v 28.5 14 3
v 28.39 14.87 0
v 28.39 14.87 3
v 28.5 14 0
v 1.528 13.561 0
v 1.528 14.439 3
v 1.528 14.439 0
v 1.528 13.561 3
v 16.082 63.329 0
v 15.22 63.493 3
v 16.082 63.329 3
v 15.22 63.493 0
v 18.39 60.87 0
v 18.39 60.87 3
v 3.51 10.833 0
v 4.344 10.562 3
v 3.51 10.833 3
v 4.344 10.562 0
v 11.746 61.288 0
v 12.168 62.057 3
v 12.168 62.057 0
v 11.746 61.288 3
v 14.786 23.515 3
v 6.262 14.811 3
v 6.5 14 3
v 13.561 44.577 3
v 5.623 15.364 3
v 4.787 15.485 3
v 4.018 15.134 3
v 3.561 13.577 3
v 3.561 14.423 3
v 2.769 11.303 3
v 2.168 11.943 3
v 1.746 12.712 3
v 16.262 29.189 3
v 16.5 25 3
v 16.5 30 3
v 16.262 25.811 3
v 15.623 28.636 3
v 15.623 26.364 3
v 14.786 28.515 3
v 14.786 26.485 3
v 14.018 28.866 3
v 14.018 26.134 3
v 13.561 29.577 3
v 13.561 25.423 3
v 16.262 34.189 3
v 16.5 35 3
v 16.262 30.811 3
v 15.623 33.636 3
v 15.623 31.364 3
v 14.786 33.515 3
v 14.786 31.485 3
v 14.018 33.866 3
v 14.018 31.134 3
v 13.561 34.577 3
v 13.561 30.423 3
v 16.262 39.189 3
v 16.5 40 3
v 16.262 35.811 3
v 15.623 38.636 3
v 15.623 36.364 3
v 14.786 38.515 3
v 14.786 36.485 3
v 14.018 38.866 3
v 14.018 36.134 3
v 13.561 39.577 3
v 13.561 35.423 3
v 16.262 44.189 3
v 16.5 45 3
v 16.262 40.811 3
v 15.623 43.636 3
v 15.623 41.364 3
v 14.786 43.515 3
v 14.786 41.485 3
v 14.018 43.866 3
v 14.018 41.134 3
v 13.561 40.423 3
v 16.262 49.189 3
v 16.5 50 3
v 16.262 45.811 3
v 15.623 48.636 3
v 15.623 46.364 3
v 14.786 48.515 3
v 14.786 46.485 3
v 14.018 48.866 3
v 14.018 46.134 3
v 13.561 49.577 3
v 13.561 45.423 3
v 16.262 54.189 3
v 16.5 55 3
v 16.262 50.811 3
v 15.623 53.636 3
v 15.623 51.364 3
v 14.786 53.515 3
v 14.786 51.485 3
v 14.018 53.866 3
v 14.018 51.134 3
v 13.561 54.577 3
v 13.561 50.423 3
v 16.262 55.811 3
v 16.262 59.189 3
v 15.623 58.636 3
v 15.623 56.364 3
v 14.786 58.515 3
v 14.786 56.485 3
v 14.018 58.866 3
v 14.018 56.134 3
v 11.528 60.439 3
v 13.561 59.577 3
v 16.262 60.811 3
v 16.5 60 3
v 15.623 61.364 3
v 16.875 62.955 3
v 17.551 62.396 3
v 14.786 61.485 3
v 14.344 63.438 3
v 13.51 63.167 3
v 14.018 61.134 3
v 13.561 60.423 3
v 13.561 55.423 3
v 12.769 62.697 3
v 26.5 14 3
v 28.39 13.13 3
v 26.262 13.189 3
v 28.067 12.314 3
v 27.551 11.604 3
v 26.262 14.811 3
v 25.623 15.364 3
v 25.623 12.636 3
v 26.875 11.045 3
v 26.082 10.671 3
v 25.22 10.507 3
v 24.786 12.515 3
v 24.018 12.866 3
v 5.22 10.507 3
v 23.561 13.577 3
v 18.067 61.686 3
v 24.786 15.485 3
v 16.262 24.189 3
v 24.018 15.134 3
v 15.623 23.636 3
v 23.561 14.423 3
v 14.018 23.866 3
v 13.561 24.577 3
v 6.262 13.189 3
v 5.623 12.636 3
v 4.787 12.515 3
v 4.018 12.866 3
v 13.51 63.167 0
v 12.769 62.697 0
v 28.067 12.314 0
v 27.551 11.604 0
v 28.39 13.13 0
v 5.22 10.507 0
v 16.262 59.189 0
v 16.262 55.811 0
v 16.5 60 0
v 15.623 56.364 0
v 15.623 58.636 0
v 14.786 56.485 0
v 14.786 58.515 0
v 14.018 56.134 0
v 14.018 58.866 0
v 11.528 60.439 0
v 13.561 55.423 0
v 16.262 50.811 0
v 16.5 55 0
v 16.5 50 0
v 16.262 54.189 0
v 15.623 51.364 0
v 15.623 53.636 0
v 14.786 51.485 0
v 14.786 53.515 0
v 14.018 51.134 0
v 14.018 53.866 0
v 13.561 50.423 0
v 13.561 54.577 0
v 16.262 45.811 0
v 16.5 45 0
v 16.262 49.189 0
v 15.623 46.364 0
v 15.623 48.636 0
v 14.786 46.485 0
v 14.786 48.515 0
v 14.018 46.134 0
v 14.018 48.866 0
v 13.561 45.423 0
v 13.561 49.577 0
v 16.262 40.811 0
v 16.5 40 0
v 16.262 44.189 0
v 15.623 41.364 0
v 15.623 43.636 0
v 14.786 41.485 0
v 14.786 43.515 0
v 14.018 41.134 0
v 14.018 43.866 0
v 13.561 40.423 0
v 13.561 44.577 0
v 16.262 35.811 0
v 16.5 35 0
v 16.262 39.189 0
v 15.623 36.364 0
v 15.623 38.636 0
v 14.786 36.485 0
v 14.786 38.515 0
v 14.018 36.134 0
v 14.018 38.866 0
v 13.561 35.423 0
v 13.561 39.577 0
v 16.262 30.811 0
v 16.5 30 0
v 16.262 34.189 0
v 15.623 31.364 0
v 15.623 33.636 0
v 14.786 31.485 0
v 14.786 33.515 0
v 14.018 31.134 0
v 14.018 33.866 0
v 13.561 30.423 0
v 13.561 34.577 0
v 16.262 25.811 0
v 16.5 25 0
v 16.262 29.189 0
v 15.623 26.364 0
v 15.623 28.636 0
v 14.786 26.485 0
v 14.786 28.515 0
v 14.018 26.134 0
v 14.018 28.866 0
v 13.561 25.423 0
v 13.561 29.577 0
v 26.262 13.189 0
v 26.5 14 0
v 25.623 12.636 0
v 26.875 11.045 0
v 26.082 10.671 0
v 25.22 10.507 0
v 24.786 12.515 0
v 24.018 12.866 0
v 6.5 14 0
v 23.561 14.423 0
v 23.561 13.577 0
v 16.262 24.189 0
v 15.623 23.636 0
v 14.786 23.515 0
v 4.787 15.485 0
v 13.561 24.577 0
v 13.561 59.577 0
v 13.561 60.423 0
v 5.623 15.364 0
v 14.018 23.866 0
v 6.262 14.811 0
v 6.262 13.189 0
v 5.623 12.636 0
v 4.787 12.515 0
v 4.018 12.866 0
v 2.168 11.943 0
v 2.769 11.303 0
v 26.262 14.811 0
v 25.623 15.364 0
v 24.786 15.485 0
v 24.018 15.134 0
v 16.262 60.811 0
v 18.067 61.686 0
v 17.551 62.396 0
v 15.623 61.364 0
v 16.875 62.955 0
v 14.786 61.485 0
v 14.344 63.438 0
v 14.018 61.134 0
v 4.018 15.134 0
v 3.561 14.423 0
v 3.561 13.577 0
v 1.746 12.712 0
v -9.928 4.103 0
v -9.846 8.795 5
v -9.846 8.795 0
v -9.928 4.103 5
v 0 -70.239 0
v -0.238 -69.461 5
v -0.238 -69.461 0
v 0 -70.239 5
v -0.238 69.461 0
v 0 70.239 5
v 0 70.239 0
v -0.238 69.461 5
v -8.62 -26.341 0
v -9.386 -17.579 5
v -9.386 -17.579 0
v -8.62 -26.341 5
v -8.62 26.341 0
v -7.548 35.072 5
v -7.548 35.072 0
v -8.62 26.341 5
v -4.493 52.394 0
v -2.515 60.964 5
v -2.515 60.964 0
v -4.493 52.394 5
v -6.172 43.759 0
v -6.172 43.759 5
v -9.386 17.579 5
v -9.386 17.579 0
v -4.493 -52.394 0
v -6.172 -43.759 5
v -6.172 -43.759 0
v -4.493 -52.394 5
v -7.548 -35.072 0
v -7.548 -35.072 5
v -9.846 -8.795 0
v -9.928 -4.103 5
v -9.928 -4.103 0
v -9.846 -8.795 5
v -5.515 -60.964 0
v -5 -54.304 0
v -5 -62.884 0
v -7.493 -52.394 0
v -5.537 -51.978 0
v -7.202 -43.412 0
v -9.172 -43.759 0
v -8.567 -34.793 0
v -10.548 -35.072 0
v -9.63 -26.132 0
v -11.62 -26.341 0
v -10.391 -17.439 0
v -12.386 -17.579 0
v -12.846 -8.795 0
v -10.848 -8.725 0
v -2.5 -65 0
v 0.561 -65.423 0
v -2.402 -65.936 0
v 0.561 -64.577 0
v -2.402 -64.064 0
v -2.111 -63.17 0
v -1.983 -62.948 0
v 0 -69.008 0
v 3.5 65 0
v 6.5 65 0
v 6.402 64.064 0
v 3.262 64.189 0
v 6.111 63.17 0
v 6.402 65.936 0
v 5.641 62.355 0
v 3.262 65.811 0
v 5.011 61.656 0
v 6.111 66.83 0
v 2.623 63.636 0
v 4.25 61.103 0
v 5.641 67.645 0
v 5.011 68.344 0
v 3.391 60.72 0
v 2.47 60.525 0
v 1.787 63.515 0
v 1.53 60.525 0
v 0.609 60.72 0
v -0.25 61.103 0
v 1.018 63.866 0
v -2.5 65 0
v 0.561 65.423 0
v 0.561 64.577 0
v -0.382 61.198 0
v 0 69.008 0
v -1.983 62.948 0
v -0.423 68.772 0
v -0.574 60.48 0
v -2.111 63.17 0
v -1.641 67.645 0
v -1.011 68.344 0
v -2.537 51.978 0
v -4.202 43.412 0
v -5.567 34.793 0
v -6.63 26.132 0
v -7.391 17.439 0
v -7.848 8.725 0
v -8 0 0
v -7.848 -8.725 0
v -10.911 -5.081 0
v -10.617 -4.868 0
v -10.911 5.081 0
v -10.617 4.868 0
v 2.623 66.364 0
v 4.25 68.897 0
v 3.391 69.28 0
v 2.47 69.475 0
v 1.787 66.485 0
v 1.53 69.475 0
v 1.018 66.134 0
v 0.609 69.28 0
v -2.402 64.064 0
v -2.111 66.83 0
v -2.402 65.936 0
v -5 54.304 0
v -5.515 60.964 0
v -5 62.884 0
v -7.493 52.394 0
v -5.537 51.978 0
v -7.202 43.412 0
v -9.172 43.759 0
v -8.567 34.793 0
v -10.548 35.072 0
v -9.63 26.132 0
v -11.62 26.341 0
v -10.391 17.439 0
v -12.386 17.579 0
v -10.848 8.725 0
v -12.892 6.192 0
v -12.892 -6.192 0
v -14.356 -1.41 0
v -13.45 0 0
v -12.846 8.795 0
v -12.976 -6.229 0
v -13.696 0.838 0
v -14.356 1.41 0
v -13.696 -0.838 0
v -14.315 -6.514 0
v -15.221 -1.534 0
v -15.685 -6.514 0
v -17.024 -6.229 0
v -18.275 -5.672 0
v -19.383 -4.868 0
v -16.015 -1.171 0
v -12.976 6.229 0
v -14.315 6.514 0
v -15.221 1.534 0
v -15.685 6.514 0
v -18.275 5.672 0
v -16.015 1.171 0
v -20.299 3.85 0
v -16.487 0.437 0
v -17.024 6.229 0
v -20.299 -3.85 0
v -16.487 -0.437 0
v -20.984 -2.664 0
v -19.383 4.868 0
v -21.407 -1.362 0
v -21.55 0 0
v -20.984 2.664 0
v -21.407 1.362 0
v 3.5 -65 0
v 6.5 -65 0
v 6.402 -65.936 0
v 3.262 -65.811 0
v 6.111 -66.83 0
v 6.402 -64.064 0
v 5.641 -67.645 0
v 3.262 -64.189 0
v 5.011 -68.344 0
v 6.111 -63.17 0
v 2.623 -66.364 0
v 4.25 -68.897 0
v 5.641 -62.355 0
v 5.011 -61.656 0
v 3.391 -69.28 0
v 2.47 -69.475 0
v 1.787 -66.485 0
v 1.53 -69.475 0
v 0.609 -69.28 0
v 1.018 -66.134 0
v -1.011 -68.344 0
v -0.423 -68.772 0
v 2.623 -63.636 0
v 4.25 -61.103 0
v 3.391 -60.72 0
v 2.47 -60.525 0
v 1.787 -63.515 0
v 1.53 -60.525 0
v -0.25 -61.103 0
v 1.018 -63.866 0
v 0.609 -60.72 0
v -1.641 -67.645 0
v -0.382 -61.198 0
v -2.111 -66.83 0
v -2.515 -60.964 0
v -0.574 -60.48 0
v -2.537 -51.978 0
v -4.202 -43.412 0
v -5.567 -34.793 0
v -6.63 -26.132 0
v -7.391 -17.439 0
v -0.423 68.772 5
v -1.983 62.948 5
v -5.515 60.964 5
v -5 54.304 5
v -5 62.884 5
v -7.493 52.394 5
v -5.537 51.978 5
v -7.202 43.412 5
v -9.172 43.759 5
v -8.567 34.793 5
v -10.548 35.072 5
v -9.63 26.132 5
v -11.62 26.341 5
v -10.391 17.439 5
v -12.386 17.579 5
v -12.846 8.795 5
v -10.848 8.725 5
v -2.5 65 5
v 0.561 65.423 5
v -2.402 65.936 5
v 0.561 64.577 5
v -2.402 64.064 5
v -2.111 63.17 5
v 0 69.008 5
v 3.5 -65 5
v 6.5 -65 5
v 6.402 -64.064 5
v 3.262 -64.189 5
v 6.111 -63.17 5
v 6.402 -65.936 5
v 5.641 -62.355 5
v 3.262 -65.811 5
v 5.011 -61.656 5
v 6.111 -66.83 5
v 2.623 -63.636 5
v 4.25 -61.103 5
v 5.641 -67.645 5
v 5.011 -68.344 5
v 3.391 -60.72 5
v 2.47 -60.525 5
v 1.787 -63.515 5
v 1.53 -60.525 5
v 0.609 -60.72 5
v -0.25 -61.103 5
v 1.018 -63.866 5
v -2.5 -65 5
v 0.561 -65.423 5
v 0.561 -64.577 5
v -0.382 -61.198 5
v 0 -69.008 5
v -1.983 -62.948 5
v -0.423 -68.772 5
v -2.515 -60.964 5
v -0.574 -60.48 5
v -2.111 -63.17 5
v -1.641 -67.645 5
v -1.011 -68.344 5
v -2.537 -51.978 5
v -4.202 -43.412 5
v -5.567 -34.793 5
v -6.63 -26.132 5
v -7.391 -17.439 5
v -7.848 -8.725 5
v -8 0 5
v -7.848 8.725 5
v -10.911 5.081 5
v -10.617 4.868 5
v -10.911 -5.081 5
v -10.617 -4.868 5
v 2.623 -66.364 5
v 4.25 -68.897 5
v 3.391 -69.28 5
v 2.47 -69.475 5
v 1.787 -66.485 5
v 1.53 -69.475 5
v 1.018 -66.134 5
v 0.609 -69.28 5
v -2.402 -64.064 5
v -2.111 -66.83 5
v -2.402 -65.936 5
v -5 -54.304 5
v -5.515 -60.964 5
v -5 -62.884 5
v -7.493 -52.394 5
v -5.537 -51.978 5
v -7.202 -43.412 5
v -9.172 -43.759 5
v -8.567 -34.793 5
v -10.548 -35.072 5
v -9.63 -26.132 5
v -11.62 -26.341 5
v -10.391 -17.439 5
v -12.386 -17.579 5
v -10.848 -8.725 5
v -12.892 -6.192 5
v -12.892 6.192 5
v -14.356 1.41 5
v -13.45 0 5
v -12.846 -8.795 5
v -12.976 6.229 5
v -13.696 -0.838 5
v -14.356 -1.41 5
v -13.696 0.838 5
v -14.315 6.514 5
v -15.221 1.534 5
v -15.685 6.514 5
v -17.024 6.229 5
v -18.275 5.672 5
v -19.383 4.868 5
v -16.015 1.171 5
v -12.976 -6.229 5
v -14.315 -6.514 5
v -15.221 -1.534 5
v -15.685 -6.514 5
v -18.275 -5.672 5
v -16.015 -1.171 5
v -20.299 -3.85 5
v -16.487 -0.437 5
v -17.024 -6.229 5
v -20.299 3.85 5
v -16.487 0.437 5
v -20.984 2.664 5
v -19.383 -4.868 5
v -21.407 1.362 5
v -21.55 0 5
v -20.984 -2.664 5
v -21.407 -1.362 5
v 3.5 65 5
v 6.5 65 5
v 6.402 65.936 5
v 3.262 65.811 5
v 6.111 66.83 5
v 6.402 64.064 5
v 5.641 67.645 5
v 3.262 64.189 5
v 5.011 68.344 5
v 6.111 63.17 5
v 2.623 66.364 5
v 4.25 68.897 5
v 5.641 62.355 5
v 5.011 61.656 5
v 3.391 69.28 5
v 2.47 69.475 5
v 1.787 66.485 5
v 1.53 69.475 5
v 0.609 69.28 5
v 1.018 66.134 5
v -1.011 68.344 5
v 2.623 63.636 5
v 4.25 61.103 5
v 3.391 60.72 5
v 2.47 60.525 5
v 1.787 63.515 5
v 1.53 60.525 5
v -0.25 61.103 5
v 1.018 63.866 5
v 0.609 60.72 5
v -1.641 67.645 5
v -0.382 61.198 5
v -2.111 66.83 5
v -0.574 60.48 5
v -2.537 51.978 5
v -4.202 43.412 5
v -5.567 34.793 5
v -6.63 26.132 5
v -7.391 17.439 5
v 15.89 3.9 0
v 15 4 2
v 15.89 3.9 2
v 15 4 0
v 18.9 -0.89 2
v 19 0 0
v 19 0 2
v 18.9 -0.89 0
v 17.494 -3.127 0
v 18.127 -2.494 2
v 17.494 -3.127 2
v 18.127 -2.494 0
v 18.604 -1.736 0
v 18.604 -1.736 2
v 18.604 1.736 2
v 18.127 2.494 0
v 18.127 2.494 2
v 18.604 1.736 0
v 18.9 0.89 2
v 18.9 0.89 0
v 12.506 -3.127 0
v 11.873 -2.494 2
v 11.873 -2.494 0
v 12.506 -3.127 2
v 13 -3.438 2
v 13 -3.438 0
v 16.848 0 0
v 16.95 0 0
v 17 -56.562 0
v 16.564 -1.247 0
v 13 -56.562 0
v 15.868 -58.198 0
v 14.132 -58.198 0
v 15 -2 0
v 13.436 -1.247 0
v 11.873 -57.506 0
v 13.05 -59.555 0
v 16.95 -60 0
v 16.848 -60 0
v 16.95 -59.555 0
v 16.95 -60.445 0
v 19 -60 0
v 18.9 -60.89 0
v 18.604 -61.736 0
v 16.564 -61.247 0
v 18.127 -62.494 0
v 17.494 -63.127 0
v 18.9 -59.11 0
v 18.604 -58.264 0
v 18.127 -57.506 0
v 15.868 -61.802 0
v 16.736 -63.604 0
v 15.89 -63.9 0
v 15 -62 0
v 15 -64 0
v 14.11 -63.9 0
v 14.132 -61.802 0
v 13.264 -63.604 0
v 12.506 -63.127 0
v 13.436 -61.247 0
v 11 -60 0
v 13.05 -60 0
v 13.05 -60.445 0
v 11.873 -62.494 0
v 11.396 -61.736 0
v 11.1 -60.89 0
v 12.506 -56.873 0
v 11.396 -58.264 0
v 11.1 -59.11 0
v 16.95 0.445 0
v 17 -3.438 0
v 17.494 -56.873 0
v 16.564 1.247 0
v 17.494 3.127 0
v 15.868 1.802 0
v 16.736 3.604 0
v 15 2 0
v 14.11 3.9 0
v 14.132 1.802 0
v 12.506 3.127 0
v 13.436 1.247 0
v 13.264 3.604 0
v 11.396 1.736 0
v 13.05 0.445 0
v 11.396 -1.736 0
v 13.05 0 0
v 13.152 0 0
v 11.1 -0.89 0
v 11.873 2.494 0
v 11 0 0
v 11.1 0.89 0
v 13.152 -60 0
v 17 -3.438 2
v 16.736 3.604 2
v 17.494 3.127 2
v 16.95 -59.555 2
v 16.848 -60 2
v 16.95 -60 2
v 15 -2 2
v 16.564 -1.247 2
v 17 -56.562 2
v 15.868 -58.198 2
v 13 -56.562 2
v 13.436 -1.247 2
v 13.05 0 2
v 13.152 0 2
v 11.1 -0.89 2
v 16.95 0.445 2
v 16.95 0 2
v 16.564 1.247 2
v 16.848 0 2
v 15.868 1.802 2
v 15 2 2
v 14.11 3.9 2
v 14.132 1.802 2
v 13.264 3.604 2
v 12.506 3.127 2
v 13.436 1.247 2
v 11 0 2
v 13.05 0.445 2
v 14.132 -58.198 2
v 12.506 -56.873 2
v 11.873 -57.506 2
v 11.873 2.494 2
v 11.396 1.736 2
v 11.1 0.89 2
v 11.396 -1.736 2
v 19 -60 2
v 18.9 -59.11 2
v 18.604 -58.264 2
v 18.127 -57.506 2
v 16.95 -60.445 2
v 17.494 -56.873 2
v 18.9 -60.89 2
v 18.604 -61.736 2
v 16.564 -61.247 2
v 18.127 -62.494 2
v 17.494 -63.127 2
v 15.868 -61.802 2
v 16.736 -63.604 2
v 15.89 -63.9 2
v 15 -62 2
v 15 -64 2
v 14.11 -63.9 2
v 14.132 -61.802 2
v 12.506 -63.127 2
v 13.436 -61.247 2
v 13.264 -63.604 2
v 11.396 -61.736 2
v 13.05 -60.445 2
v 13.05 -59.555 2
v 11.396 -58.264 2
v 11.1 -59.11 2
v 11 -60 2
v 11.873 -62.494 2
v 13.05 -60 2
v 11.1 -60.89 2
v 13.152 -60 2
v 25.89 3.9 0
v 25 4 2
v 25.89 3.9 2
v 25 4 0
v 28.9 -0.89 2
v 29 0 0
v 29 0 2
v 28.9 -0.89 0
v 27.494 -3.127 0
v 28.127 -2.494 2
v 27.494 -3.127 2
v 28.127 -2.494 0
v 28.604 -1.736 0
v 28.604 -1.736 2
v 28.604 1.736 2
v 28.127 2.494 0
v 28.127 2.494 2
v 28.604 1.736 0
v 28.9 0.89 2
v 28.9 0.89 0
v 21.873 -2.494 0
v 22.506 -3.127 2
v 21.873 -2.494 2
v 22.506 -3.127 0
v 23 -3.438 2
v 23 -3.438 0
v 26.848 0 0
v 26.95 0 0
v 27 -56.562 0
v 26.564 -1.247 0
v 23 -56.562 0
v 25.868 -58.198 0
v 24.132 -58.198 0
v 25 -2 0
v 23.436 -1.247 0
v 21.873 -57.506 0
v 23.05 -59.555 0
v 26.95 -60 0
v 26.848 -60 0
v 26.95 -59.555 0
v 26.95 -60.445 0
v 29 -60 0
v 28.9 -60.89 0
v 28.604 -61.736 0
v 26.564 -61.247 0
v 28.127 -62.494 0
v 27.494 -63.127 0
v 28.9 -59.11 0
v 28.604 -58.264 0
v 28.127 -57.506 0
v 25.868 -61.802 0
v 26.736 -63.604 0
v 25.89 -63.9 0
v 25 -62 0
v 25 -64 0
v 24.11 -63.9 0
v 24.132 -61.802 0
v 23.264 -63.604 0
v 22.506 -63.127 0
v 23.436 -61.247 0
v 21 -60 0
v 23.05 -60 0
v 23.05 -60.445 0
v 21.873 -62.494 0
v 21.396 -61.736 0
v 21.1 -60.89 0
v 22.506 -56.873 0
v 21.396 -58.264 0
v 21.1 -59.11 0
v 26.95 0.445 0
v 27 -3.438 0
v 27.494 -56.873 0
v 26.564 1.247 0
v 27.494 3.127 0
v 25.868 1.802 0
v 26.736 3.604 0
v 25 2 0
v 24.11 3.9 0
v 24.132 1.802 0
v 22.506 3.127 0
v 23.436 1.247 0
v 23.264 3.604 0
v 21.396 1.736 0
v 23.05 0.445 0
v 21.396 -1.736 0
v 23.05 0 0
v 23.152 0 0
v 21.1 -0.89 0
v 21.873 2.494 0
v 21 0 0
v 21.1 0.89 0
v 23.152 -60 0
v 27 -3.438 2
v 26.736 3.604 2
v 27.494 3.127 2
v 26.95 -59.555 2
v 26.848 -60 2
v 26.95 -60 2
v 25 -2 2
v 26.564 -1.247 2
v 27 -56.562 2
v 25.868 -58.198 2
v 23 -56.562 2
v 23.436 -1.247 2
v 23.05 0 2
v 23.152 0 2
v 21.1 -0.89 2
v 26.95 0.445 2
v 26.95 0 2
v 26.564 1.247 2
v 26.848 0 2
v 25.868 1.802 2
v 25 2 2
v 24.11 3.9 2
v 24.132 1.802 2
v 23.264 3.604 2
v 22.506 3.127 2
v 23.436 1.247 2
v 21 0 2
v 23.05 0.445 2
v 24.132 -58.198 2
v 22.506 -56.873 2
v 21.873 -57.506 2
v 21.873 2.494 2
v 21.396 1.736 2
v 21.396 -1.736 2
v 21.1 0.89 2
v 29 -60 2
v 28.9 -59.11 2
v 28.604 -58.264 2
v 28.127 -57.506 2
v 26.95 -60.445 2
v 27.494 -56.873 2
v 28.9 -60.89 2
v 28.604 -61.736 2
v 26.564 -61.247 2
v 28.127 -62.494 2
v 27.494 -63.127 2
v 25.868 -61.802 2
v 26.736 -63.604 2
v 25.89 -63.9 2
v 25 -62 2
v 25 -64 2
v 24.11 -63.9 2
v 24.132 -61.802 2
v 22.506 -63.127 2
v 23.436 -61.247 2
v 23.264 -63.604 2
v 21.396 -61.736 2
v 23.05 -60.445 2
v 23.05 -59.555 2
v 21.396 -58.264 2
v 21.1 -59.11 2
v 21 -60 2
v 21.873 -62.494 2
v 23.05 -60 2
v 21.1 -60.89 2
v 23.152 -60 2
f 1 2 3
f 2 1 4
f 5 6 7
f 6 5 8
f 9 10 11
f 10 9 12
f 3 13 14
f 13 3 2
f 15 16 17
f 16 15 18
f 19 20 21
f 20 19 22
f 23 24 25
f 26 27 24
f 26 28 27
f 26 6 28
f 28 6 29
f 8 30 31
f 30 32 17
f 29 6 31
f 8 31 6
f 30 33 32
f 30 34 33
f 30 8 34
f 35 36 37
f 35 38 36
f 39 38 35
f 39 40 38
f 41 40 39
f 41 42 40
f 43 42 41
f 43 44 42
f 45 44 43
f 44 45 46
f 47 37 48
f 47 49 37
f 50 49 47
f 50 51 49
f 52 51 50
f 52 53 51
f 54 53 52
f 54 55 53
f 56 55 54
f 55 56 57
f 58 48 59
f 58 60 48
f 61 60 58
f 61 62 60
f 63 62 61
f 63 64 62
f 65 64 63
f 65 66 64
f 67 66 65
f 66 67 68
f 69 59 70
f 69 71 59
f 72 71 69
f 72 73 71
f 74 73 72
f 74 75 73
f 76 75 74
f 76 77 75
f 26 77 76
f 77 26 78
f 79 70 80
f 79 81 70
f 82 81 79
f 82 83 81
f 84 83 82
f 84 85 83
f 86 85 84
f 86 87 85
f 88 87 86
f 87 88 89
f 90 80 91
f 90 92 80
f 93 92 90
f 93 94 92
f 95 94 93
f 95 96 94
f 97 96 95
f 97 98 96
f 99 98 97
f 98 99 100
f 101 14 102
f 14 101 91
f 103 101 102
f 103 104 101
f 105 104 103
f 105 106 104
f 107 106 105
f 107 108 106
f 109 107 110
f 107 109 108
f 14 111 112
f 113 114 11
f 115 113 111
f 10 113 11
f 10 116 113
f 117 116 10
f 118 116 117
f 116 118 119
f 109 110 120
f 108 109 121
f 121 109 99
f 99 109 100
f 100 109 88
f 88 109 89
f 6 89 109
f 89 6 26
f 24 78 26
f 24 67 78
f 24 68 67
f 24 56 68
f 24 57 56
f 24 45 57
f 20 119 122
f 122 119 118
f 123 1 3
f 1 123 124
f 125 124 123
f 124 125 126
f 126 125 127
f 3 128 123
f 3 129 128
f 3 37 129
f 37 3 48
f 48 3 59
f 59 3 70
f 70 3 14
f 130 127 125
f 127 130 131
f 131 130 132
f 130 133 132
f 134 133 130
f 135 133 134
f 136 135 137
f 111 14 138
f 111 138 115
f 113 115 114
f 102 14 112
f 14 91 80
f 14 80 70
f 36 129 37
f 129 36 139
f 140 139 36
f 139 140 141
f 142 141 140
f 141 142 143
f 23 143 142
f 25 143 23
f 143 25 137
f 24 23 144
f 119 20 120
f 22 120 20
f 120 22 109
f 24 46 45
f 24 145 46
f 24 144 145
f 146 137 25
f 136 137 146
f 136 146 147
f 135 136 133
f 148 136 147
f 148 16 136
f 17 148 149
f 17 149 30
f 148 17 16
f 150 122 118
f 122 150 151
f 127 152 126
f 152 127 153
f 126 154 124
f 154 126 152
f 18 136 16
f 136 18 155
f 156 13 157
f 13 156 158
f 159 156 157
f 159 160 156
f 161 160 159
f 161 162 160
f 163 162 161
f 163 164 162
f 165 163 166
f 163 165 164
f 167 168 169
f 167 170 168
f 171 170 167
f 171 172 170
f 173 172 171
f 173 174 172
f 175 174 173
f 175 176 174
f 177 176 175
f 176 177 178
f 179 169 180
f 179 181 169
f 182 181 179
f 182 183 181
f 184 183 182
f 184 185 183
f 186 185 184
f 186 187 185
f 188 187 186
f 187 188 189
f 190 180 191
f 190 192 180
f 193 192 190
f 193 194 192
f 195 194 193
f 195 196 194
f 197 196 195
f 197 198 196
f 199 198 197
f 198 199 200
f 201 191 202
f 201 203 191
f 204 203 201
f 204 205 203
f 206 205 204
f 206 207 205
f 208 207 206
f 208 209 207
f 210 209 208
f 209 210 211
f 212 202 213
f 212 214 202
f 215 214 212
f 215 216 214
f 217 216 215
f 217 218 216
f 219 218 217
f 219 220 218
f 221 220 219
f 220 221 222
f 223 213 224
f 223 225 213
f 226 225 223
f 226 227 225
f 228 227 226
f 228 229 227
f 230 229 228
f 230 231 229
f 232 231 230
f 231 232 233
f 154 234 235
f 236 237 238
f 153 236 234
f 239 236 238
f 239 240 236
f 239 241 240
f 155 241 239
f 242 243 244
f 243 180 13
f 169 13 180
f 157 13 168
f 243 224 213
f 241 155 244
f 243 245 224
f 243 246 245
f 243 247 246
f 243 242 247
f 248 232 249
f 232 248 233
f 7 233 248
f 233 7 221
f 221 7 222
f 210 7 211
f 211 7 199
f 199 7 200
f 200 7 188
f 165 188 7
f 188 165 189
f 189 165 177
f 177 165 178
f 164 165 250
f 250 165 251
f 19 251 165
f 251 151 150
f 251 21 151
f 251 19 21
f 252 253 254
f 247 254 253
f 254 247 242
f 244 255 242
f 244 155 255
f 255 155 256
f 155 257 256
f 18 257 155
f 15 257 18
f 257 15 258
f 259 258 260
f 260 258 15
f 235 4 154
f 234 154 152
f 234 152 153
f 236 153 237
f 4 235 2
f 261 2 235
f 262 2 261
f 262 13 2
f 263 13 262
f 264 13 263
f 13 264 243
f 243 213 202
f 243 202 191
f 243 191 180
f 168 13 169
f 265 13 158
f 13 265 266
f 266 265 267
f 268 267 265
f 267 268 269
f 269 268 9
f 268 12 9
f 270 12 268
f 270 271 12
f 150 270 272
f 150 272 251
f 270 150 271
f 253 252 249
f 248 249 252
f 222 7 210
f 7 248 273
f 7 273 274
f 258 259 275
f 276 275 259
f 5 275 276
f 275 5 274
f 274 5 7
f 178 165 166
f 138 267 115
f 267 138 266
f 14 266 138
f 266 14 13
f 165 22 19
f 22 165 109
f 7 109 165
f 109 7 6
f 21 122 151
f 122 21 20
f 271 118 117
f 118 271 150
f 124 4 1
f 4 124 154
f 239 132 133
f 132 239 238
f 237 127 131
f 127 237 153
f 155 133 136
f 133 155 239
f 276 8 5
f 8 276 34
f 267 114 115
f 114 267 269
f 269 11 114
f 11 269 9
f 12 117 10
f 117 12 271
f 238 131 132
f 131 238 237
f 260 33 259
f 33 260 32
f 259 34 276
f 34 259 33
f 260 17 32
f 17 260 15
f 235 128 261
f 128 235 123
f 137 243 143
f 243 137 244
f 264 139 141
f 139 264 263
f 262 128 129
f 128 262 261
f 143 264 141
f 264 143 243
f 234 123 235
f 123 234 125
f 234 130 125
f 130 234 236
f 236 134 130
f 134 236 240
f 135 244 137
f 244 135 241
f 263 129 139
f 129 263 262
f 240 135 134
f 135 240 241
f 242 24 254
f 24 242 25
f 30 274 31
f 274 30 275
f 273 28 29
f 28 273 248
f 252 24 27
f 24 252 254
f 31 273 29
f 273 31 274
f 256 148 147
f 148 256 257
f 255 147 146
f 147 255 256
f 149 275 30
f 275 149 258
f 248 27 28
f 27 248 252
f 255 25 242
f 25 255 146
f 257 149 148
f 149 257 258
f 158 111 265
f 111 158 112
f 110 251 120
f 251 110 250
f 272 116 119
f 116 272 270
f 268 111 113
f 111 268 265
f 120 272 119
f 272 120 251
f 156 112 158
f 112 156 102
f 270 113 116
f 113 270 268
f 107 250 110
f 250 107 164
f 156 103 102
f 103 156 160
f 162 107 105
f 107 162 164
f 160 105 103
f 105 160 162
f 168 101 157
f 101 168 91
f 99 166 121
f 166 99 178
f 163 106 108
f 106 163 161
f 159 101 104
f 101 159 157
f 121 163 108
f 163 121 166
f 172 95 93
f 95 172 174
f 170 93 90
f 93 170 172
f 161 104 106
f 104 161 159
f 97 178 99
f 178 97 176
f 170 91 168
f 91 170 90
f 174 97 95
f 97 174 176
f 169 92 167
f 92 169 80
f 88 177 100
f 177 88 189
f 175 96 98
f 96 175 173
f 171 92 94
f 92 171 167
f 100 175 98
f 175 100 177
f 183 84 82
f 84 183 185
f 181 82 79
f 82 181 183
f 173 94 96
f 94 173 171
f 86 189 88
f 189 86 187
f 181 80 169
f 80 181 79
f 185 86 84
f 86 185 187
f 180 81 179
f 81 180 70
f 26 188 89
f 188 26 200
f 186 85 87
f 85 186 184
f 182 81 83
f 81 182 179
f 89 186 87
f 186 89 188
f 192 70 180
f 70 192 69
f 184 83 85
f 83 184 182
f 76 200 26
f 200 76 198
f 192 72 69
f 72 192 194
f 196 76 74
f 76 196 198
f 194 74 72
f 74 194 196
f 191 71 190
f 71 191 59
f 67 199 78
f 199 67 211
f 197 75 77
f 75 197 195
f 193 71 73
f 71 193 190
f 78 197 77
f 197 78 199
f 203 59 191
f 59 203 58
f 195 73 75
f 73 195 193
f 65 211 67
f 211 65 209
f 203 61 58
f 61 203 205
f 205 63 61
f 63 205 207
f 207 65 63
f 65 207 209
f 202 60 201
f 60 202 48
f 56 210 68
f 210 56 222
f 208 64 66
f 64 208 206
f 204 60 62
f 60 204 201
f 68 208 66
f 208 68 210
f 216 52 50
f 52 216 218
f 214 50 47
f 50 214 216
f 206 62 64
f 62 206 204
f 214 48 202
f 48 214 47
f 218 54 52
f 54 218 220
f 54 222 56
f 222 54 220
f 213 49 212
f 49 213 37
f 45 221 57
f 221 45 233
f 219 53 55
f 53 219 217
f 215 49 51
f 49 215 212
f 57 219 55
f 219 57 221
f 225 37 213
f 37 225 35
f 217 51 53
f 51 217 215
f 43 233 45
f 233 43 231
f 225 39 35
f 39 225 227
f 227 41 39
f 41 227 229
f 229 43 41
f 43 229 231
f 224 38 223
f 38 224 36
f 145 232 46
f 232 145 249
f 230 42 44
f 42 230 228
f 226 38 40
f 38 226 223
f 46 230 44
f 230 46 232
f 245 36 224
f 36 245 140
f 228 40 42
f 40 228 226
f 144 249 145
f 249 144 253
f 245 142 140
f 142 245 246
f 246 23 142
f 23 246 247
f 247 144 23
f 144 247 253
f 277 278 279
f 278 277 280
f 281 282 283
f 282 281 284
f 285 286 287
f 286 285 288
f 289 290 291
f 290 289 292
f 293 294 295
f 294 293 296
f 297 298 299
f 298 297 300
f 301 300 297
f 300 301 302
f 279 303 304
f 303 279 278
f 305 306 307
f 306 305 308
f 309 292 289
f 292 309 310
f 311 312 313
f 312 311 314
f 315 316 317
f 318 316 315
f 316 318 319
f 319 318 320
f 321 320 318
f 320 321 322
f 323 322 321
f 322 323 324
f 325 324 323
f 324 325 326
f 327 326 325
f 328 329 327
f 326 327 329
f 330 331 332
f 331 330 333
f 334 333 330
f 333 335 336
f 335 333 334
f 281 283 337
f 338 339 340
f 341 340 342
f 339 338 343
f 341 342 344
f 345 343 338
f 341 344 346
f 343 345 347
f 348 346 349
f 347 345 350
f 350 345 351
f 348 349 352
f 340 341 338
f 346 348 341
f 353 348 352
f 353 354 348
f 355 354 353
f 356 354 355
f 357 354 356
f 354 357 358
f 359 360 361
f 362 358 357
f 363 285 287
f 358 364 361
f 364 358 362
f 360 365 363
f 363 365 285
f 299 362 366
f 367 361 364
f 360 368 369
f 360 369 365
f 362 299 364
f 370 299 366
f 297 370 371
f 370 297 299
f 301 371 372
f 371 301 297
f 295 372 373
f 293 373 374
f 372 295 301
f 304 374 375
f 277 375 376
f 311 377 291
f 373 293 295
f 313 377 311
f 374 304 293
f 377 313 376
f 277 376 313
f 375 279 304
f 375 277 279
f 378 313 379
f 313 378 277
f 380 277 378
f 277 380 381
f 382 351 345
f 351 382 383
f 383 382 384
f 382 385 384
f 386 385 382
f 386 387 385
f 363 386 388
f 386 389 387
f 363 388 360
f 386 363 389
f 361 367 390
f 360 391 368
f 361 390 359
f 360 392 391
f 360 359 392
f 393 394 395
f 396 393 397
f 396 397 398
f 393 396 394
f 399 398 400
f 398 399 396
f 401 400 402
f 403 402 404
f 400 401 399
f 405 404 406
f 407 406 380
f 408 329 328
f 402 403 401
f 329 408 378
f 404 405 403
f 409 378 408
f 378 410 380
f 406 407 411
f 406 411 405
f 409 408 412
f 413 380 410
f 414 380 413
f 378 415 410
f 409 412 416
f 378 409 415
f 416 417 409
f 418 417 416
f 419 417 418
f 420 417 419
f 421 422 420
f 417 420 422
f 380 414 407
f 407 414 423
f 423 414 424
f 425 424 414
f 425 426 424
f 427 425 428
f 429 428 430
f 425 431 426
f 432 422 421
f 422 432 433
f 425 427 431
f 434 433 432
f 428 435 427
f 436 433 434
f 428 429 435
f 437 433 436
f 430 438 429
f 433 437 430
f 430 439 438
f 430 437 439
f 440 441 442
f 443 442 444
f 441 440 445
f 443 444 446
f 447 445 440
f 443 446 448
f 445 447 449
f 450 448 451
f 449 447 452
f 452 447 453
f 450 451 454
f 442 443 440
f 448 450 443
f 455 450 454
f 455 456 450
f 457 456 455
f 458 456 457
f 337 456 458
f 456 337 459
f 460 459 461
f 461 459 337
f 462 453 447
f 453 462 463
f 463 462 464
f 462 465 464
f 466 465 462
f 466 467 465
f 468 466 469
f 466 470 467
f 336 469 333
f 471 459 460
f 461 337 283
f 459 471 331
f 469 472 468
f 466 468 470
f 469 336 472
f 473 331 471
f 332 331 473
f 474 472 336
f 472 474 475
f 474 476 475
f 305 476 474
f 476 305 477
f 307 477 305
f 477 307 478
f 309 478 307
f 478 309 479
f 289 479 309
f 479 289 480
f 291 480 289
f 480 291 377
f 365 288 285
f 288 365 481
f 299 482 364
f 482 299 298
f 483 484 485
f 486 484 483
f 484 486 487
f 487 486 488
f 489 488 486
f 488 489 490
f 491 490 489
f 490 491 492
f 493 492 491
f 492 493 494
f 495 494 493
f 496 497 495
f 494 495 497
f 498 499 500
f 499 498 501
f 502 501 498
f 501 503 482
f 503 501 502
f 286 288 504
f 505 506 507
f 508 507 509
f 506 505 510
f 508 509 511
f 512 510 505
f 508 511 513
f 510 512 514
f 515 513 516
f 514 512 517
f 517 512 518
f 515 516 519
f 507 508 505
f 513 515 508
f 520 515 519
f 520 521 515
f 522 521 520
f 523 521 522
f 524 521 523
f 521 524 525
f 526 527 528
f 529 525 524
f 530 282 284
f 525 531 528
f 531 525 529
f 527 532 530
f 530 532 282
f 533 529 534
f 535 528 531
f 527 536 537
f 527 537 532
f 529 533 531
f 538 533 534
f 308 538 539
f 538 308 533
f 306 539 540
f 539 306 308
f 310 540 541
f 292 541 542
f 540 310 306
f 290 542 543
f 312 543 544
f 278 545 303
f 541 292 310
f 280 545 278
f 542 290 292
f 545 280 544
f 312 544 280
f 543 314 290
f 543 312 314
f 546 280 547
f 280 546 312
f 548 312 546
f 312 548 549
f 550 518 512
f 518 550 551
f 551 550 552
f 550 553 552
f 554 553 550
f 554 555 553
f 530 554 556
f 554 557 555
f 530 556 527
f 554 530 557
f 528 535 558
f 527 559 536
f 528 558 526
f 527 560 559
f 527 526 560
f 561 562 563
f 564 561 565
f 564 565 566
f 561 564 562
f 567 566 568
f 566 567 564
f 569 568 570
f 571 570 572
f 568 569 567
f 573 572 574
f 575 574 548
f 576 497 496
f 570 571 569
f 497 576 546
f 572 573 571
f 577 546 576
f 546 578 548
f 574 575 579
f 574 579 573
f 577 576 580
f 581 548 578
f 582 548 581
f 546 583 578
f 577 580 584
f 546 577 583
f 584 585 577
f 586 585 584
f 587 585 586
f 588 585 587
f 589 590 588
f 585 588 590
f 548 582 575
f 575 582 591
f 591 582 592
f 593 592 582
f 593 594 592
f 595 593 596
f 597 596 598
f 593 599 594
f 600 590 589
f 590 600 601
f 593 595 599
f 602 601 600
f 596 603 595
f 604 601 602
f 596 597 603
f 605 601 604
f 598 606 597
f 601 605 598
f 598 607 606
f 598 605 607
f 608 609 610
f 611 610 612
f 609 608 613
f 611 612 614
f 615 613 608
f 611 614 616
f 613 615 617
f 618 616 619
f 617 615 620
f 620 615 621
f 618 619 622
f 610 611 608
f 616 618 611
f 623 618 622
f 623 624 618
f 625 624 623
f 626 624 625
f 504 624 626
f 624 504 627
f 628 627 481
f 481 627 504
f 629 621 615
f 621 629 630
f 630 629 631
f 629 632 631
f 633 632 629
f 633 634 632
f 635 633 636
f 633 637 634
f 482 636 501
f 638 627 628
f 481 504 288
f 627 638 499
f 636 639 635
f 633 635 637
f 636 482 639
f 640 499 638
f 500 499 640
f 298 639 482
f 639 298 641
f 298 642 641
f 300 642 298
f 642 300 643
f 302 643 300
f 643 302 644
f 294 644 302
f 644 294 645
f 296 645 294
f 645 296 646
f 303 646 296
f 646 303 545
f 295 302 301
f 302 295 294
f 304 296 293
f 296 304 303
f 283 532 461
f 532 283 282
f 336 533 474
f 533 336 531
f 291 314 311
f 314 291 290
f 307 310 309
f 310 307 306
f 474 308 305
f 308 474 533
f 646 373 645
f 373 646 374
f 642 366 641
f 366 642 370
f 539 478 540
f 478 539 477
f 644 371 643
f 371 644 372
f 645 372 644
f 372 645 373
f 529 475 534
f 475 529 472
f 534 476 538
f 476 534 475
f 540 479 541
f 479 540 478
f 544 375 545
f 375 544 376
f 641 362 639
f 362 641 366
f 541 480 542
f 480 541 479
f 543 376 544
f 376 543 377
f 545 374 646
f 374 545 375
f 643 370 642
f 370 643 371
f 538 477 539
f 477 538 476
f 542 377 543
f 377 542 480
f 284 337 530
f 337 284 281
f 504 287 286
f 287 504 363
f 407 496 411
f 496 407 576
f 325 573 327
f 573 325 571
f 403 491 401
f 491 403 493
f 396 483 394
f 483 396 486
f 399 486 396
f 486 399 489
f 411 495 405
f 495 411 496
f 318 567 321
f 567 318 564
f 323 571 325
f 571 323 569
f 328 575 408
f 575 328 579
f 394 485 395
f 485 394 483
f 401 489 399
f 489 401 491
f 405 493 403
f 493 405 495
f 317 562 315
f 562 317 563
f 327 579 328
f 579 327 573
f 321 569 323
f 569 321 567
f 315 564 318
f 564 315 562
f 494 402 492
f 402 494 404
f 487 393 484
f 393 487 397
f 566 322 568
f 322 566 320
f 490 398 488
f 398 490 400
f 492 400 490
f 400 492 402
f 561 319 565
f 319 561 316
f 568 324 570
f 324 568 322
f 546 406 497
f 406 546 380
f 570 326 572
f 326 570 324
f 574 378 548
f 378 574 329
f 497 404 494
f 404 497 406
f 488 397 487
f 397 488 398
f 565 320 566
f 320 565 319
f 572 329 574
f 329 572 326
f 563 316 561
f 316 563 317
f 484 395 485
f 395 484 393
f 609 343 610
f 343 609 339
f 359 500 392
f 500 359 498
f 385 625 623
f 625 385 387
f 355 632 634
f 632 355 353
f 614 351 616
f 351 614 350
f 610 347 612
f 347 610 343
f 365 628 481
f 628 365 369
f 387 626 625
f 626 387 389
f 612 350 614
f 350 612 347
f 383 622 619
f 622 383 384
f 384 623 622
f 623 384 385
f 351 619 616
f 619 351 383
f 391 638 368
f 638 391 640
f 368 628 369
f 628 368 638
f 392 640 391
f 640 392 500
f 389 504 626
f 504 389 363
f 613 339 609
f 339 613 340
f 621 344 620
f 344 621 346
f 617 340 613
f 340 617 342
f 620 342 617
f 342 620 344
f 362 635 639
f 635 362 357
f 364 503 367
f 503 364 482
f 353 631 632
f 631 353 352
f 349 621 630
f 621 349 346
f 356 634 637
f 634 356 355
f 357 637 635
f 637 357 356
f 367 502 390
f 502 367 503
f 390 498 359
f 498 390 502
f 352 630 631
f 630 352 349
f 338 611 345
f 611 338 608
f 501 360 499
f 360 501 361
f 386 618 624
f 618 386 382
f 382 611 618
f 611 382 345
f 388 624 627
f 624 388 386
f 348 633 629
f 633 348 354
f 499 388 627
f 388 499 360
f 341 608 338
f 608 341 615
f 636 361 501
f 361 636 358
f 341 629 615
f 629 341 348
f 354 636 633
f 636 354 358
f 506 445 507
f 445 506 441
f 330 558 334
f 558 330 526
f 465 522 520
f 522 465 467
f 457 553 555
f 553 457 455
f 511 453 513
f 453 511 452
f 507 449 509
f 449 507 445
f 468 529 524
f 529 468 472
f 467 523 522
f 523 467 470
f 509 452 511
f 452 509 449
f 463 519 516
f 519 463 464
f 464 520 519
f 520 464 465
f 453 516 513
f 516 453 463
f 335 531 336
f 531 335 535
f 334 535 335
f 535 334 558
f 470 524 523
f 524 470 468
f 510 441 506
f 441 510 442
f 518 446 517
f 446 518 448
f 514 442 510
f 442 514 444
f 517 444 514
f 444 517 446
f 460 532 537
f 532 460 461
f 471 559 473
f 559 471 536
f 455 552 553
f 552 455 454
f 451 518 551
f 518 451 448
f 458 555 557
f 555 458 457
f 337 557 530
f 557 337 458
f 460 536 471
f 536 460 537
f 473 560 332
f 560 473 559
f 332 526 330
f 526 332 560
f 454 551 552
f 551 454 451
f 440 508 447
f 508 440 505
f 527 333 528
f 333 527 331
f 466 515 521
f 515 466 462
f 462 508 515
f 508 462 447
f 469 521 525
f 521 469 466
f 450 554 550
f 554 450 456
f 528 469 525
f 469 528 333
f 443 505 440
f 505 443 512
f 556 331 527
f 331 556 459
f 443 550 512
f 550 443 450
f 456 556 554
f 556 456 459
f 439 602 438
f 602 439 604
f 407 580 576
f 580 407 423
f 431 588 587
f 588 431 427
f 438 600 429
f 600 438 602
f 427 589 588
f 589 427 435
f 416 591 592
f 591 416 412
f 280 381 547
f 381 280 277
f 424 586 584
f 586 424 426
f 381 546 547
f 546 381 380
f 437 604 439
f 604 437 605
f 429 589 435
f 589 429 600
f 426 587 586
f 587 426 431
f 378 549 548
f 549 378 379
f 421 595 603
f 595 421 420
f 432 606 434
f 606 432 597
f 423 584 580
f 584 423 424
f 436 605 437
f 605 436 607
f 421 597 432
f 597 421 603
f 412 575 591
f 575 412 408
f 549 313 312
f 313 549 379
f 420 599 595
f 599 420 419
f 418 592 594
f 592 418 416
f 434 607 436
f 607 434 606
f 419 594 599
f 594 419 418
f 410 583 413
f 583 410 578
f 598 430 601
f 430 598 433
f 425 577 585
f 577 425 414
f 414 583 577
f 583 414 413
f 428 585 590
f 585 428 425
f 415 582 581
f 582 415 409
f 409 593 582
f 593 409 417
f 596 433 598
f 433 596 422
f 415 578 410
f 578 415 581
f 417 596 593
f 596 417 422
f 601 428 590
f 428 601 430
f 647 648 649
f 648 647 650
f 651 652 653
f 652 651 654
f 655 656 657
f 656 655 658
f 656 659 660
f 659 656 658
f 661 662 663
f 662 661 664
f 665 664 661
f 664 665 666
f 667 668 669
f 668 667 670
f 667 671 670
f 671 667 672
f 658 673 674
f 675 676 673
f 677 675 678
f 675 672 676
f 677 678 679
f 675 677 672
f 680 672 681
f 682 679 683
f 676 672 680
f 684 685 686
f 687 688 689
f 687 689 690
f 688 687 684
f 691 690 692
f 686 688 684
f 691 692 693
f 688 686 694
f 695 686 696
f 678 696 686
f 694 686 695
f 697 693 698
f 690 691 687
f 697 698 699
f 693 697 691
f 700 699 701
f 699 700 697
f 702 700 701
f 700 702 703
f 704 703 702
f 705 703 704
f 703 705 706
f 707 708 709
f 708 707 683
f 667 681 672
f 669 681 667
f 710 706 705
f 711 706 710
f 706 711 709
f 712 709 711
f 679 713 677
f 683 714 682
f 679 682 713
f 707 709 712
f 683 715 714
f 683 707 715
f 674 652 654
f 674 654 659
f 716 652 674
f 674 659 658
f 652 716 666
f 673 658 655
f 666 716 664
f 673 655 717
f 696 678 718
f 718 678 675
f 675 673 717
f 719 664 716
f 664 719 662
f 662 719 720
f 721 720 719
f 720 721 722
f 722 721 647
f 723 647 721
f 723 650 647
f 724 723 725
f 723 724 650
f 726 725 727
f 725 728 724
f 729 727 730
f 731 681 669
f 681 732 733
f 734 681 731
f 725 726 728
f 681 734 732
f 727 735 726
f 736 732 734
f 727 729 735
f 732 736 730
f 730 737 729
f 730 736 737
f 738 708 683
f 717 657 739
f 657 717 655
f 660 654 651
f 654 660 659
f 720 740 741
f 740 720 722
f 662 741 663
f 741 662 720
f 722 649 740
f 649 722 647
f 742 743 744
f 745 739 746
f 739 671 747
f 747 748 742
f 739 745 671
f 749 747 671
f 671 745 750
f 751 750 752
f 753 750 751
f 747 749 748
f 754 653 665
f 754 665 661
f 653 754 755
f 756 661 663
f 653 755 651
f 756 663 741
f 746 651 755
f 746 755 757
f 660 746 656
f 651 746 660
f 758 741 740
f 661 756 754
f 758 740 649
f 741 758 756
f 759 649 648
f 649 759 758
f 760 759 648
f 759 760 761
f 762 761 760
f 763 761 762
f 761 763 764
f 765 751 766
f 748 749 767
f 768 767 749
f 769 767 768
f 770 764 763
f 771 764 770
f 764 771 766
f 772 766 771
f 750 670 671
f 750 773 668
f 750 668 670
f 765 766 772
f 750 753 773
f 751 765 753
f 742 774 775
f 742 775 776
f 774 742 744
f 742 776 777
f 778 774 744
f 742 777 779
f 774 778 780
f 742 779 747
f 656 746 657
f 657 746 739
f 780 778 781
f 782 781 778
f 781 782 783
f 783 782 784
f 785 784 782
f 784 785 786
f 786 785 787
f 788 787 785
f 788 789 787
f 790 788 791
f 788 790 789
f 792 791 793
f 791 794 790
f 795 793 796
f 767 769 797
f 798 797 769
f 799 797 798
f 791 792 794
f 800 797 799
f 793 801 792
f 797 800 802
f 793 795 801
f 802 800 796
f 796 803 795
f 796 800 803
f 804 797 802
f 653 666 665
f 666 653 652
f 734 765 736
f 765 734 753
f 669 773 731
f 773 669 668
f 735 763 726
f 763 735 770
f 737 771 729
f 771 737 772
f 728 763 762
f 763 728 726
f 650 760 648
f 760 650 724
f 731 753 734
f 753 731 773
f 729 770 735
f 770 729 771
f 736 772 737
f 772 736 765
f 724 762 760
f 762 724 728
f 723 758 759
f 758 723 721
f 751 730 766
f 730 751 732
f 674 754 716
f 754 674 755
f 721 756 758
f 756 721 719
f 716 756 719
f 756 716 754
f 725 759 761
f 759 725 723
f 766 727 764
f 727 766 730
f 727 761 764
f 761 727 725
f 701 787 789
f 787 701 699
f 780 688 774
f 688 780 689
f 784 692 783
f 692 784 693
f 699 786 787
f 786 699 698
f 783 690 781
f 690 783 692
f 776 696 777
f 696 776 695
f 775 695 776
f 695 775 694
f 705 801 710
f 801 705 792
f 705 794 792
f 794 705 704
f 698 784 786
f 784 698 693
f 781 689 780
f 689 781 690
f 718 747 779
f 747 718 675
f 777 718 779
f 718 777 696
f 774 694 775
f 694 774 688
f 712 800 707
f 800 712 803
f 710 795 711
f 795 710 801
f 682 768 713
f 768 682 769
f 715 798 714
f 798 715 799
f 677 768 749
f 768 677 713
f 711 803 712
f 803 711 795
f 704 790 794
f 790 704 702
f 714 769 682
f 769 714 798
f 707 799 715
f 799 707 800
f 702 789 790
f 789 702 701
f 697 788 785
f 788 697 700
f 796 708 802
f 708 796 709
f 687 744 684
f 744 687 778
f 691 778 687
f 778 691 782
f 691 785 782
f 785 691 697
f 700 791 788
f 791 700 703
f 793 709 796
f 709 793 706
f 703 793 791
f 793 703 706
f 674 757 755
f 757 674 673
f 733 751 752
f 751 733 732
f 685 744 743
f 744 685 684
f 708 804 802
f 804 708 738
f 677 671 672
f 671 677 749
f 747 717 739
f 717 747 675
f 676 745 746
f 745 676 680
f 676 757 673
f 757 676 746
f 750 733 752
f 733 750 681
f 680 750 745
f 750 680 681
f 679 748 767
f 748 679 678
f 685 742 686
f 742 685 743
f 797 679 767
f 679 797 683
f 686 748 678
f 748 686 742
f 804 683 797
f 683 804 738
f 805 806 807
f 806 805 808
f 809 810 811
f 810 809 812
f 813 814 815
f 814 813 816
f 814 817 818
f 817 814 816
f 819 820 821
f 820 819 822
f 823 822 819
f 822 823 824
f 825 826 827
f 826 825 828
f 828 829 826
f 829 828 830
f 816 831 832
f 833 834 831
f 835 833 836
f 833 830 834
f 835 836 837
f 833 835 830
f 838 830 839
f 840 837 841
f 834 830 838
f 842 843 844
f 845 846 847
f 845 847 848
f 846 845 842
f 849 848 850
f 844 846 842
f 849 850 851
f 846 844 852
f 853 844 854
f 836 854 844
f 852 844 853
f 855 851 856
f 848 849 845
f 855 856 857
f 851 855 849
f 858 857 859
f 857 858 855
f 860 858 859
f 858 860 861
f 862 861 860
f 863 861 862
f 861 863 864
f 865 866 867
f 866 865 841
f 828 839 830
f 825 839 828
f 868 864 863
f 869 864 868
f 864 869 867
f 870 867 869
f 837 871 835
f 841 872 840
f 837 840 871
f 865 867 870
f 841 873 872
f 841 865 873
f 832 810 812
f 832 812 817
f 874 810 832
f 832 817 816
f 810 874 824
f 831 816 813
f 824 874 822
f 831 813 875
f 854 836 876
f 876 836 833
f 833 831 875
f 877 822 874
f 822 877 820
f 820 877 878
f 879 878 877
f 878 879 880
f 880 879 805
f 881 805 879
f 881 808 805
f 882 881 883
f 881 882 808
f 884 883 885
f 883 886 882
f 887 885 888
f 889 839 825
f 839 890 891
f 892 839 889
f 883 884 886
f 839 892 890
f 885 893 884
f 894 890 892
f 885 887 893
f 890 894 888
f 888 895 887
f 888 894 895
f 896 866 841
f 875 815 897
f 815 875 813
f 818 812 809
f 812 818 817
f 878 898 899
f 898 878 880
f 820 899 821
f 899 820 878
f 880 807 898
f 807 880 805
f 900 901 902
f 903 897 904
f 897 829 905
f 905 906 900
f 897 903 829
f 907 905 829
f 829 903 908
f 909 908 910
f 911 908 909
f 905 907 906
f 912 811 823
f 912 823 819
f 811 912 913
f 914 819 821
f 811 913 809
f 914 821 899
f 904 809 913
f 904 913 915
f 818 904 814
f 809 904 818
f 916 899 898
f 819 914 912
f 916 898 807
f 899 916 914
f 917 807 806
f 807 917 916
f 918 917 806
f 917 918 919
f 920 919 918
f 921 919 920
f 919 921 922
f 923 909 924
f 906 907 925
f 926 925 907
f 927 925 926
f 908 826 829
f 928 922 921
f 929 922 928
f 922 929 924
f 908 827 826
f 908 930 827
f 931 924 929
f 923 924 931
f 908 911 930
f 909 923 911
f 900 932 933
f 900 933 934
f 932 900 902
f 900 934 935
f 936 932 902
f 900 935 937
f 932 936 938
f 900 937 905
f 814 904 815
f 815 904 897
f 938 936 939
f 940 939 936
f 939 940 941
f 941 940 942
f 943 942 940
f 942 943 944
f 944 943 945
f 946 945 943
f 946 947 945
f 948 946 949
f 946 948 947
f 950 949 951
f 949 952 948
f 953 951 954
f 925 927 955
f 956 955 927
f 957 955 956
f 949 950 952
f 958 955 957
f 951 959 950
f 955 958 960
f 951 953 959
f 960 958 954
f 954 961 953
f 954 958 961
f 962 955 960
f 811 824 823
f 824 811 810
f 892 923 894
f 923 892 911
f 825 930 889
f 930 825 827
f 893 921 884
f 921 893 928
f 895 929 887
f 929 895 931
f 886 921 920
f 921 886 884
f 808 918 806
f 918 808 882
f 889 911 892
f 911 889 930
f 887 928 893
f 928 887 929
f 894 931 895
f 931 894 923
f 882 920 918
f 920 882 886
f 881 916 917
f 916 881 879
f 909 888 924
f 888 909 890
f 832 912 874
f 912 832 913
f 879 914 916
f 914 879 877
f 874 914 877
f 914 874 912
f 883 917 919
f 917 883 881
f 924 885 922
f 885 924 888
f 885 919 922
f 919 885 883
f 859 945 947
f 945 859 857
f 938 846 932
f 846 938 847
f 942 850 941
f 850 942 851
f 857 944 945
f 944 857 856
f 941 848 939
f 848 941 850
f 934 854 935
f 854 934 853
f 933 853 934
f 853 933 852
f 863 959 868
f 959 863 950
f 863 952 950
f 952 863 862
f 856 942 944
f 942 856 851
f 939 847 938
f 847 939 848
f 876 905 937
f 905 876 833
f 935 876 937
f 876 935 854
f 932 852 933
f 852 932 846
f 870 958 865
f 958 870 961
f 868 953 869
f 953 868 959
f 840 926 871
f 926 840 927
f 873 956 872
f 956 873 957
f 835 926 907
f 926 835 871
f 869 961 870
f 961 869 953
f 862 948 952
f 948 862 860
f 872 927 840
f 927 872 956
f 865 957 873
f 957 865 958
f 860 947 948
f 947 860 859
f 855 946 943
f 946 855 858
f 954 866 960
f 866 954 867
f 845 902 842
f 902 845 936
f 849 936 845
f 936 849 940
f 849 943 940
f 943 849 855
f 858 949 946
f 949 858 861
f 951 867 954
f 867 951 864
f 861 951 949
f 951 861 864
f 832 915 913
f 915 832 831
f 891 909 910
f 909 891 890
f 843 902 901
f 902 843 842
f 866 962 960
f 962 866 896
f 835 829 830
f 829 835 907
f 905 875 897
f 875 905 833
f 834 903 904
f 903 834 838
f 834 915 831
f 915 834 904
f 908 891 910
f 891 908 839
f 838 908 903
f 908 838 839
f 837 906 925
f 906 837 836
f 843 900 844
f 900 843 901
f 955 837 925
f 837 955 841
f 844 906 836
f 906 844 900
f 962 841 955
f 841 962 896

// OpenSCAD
// file: frame.scad
h=18;
x= 60;
wall = 4;
$fs=1;
module f8x16() {
    y = 160;
    difference() {
        translate([-x/2,0,0]) cube([x,y,18]);
        translate([-x/2+wall,+wall,-1]) cube([x-wall*2,y-wall*2,18+2]);
        screw_cut_y(y);
        screw_cut_x(x);
    }
}
module f8x(y) {
    
    difference() {
        translate([-x/2,0,0]) cube([x,y,18]);
        translate([-x/2+wall,+wall,-1]) cube([x-wall*2,y-wall*2,18+2]);
        screw_cut_y(y);
        screw_cut_x(x);
    }
}
module screw_cut_x(width) {
    
    dist = 10;
    width = width - dist;
    hole_d = 3.5;
    
    for (a =[dist:dist:width]) {
        translate([-x/2+a,-100,h/2]) rotate([0,90,90]) cylinder(d=hole_d, h=400);
    }
}
module screw_cut_y(length) {
    
    dist = 10;
    length = length - dist;
    hole_d = 3.5;
    
    for (a =[dist:dist:length]) {
        translate([-x,a,h/2]) rotate([0,90,0]) cylinder(d=hole_d, h=x*2);
    }
}
module servo_frame() {
    screw_d = 2.9;
    difference() {
        union() {
            translate([-x/2,-5,-1]) cube([x, 10,1]);
            translate([-x/2+wall,-8/2,0]) cube([x-wall*2-0.5, 8,h/2+1.5+1]);
        }
        for (a =[0:5:x-wall*2-10]) {
        translate([a-x/2+wall+5,0,-2]) cylinder(d=screw_d, h=20+2);
        }
        translate([20,0,h/2]) rotate([0,90,0]) cylinder(d=screw_d, h=x*2);
        translate([-20,0,h/2]) rotate([0,90,180]) cylinder(d=screw_d, h=x*2);
    }
    
    
    //translate([0,0,0]) cylinder(d=3, h=20);
    //translate([0,48.5,0]) cylinder(d=3, h=20);
}
module mount2() {
    $fs= 0.9;
    x = 8;
    y= 15;
    z = 6;
    $fs= 0.9;
    difference() {
        union() {
            translate([8, 0, 0]) cube([x,y,z]);
            hull() {
                
            }
        }
        translate([0,y-3,z/2]) rotate([0,90,0]) cylinder(d=3,h=z*4);
        translate([0,0,-1]) cylinder(d=22,h=z+2);
    }
}
module hollow_cyl(d, w, h) {
    $fs= 0.9;
    difference() {
        cylinder(d=d+w*2, h=h);
        translate([0,0,-1])cylinder(d=d, h=h+2);
    }
}
module link1() {
    $fs= 0.9;
    x = 8;
    y= 15;
    z = 6;
    difference() {
        union() {
            mount2();
            mirror([0,1,0]) mount2();
            hull() {
                mirror([0,1,0]) mount2();
                translate([45,-100,0])hollow_cyl( d=3, w=4, h=6);
            }
        }
        translate([0,y-3,z/2]) rotate([0,90,0]) cylinder(d=3,h=z*4);
        mirror([0,1,0]) translate([0,y-3,z/2]) rotate([0,90,0]) cylinder(d=3,h=z*4);
        translate([0,0,-1]) cylinder(d=22,h=z+2);
    }
    
}
link1();
//f8x16();
//translate([0,10,0])servo_frame();
//translate([90,0,0])f8x(80);
//translate([90,80,0])f8x(80);

//translate([90,-10 -40,0])f8x(40);
// main file
use <frame.scad>
use <wormtest.scad>
use <bevelaxle.scad>
fh = 55;
h_d = 110;
h_w = 48;
hex2hex = 192;

module spring_display() {
    //%translate([0,-300,0]) f8x(600);
    translate([0,-40,fh]) f8x(80);
    translate([0,-40+80,fh]) f8x(160);
    translate([0,-40+80+160,fh]) %f8x(80);
    translate([0,-40-160,fh]) f8x(160);
    //translate([0,-40-80-80,fh]) f8x(80);

    wheelbase = 270;
    translate([0,-130/2,0]) hjul();

    translate([0,130/2,0]) %hjul(); // 6x6
    translate([40,0,20]) rotate([0,90,0]) spring();
    translate([-40,0,20]) rotate([0,90,0]) spring();
    translate([40,0,70]) rotate([-90,0,0]) rotate([0,90,0])  spring_mount();
    translate([44,0,20]) rotate([-90,0,0]) rotate([0,90,0]) rotate([0,0,25])  link(60,2);

}
//spring_display();
// Printer friendly:
translate([15,10,0]) spring_mount();
spring();
translate([15,0,0])rotate([0,0,-90]) link(60,2);
translate([25,0,0])rotate([0,0,-90]) link(60,2);


module hjul() {

    //translate([hex2hex/2,0,0])  ett_hjul();
    //translate([-hex2hex/2,0,0]) rotate([0,0,180]) ett_hjul();
    
    rotate([180,0,0])  rotate([0,90,0]) dual_axle();
    rotate([180,0,0])  rotate([0,90,0]) up_axle();
}
module ett_hjul() {
    translate([-37,0,]) rotate([0,90,0]) difference() {
        cylinder(d=h_d, h = h_w);
    }
    
}
//ett_hjul();

module spring() {
    cut_x = 242;
    hh = 5;
    translate([cut_x, 0,0]) difference() {
        hollow_cyl(d=500, w=2, h=hh, $fa=2);
        translate([-cut_x, -500, -1]) cube(1000);
    }
    translate([cut_x-3, 0,0]) difference() {
        hollow_cyl(d=500, w=2, h=hh, $fa=2);
        translate([-cut_x-2, -500, -1]) cube(1000);
    }
    translate([2,130/2,0]) hollow_cyl(d=3,w=3, h=hh);
    translate([2,-130/2,0]) hollow_cyl(d=3,w=3, h=hh);
    translate([-15,0,0]) hollow_cyl(d=3.1,w=5, h=hh);
}
module spring_mount() {

     $fs= 0.9;
    hole = 3;
    wall = 2;
    thick = 3;
    difference() {
        hull() {    
            translate([10,8/2,0]) hollow_cyl(d=hole, w=wall, h=thick);
            translate([-10,8/2,0]) hollow_cyl(d=hole, w=wall, h=thick);
            translate([0,50,0]) hollow_cyl(d=hole, w=wall, h=thick);
        }
        //translate([0,0,-1]) cylinder(d=19, h=thick*2);
        translate([10,8/2,0]) cylinder(d=hole, h=thick*2);
        translate([-10,8/2,0]) cylinder(d=hole, h=thick*2);
        translate([0,50,0]) cylinder(d=hole, h=thick*2);
        translate([0,50-5,0]) cylinder(d=hole, h=thick*2);
        translate([0,50-5-5,0]) cylinder(d=hole, h=thick*2);
        translate([0,50-5-5-5,0]) cylinder(d=hole, h=thick*2);
        translate([0,50-5-5-5-5,0]) cylinder(d=hole, h=thick*2);
        translate([0,50-5-5-5-5-5,0]) cylinder(d=hole, h=thick*2);
        translate([0,50-5-5-5-5-5-5,0]) cylinder(d=hole, h=thick*2);
        translate([0,50-5-5-5-5-5-5-5,0]) cylinder(d=hole, h=thick*2);
    }
    //translate([0,50,0]) hollow_cyl(d=hole, w=wall, h=13+thick);

}

module link(length, thick) {
    wall = 2;
    y = wall*2;
    hole = 4;
    
    difference() {
        union() {
            hollow_cyl(d=hole, w=wall, h=thick);
            translate([length,0,0]) hollow_cyl(d=hole, w=wall, h=thick);
            translate([0,-y/2,0])cube([length, y,thick]);
        }
        translate([0,0,-1]) cylinder(d=4, h=thick*2);
        translate([length,0,-1]) cylinder(d=4, h=thick*2);
    }
    
}
